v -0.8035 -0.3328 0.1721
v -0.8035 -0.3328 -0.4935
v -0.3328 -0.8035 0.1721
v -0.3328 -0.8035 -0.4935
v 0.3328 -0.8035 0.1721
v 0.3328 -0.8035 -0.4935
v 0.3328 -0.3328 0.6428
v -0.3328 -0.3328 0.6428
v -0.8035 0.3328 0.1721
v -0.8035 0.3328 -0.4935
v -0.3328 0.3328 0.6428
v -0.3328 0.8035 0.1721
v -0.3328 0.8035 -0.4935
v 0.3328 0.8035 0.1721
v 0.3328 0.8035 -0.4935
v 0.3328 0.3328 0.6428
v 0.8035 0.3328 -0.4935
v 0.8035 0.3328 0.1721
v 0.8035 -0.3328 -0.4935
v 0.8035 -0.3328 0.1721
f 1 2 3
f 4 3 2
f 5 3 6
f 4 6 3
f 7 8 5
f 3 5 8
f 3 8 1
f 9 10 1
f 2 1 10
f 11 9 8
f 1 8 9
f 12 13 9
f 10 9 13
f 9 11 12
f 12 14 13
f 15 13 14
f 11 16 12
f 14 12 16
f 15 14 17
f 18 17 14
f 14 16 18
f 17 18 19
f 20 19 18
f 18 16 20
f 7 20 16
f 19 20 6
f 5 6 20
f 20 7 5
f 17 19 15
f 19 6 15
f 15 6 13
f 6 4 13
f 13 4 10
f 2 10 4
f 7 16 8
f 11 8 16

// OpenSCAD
polyhedron( points = [[-0.332829853260595, -0.803522346284432, 0.172125384234394], [-0.803522346031305, -0.332829853450324, 0.172125384234394], [-0.803522346290022, 0.332829853578041, 0.172125384234394], [-0.332829853885197, 0.803522346369883, 0.172125384234394], [0.332829852854569, 0.803522346369883, 0.172125384234394], [0.803522345667551, 0.332829853578047, 0.172125384234394], [0.803522345986029, -0.332829853450325, 0.172125384234394], [0.332829853623471, -0.803522346284432, 0.172125384234394], [-0.332829853230709, -0.803522346212281, -0.493534322649671], [-0.803522345971533, -0.332829853408059, -0.493534322547634], [-0.803522345869496, 0.332829853403857, -0.493534322649671], [-0.33282985309516, 0.803522346072533, -0.493534322619785], [0.332829853665734, 0.803522345949359, -0.493534322649671], [0.803522346355544, 0.332829853196158, -0.493534322619785], [0.803522346262258, -0.33282985356474, -0.493534322649671], [0.332829853623471, -0.803522346212281, -0.493534322679559], [-0.332829853230709, -0.33282985325536, 0.642817876810141], [0.332829853472979, -0.332829853425172, 0.64281787664033], [0.332829853004357, 0.332829853527024, 0.642817876869913], [-0.332829853651237, 0.332829853502621, 0.642817876869912]], faces = [[0, 1, 9, 8], [0, 8, 15, 7], [0, 7, 17, 16], [0, 16, 1], [1, 2, 10, 9], [1, 16, 19, 2], [2, 3, 11, 10], [2, 19, 3], [3, 4, 12, 11], [3, 19, 18, 4], [4, 5, 13, 12], [4, 18, 5], [5, 6, 14, 13], [5, 18, 17, 6], [6, 7, 15, 14], [6, 17, 7], [8, 9, 10, 11, 12, 13, 14, 15], [16, 17, 18, 19]]);
